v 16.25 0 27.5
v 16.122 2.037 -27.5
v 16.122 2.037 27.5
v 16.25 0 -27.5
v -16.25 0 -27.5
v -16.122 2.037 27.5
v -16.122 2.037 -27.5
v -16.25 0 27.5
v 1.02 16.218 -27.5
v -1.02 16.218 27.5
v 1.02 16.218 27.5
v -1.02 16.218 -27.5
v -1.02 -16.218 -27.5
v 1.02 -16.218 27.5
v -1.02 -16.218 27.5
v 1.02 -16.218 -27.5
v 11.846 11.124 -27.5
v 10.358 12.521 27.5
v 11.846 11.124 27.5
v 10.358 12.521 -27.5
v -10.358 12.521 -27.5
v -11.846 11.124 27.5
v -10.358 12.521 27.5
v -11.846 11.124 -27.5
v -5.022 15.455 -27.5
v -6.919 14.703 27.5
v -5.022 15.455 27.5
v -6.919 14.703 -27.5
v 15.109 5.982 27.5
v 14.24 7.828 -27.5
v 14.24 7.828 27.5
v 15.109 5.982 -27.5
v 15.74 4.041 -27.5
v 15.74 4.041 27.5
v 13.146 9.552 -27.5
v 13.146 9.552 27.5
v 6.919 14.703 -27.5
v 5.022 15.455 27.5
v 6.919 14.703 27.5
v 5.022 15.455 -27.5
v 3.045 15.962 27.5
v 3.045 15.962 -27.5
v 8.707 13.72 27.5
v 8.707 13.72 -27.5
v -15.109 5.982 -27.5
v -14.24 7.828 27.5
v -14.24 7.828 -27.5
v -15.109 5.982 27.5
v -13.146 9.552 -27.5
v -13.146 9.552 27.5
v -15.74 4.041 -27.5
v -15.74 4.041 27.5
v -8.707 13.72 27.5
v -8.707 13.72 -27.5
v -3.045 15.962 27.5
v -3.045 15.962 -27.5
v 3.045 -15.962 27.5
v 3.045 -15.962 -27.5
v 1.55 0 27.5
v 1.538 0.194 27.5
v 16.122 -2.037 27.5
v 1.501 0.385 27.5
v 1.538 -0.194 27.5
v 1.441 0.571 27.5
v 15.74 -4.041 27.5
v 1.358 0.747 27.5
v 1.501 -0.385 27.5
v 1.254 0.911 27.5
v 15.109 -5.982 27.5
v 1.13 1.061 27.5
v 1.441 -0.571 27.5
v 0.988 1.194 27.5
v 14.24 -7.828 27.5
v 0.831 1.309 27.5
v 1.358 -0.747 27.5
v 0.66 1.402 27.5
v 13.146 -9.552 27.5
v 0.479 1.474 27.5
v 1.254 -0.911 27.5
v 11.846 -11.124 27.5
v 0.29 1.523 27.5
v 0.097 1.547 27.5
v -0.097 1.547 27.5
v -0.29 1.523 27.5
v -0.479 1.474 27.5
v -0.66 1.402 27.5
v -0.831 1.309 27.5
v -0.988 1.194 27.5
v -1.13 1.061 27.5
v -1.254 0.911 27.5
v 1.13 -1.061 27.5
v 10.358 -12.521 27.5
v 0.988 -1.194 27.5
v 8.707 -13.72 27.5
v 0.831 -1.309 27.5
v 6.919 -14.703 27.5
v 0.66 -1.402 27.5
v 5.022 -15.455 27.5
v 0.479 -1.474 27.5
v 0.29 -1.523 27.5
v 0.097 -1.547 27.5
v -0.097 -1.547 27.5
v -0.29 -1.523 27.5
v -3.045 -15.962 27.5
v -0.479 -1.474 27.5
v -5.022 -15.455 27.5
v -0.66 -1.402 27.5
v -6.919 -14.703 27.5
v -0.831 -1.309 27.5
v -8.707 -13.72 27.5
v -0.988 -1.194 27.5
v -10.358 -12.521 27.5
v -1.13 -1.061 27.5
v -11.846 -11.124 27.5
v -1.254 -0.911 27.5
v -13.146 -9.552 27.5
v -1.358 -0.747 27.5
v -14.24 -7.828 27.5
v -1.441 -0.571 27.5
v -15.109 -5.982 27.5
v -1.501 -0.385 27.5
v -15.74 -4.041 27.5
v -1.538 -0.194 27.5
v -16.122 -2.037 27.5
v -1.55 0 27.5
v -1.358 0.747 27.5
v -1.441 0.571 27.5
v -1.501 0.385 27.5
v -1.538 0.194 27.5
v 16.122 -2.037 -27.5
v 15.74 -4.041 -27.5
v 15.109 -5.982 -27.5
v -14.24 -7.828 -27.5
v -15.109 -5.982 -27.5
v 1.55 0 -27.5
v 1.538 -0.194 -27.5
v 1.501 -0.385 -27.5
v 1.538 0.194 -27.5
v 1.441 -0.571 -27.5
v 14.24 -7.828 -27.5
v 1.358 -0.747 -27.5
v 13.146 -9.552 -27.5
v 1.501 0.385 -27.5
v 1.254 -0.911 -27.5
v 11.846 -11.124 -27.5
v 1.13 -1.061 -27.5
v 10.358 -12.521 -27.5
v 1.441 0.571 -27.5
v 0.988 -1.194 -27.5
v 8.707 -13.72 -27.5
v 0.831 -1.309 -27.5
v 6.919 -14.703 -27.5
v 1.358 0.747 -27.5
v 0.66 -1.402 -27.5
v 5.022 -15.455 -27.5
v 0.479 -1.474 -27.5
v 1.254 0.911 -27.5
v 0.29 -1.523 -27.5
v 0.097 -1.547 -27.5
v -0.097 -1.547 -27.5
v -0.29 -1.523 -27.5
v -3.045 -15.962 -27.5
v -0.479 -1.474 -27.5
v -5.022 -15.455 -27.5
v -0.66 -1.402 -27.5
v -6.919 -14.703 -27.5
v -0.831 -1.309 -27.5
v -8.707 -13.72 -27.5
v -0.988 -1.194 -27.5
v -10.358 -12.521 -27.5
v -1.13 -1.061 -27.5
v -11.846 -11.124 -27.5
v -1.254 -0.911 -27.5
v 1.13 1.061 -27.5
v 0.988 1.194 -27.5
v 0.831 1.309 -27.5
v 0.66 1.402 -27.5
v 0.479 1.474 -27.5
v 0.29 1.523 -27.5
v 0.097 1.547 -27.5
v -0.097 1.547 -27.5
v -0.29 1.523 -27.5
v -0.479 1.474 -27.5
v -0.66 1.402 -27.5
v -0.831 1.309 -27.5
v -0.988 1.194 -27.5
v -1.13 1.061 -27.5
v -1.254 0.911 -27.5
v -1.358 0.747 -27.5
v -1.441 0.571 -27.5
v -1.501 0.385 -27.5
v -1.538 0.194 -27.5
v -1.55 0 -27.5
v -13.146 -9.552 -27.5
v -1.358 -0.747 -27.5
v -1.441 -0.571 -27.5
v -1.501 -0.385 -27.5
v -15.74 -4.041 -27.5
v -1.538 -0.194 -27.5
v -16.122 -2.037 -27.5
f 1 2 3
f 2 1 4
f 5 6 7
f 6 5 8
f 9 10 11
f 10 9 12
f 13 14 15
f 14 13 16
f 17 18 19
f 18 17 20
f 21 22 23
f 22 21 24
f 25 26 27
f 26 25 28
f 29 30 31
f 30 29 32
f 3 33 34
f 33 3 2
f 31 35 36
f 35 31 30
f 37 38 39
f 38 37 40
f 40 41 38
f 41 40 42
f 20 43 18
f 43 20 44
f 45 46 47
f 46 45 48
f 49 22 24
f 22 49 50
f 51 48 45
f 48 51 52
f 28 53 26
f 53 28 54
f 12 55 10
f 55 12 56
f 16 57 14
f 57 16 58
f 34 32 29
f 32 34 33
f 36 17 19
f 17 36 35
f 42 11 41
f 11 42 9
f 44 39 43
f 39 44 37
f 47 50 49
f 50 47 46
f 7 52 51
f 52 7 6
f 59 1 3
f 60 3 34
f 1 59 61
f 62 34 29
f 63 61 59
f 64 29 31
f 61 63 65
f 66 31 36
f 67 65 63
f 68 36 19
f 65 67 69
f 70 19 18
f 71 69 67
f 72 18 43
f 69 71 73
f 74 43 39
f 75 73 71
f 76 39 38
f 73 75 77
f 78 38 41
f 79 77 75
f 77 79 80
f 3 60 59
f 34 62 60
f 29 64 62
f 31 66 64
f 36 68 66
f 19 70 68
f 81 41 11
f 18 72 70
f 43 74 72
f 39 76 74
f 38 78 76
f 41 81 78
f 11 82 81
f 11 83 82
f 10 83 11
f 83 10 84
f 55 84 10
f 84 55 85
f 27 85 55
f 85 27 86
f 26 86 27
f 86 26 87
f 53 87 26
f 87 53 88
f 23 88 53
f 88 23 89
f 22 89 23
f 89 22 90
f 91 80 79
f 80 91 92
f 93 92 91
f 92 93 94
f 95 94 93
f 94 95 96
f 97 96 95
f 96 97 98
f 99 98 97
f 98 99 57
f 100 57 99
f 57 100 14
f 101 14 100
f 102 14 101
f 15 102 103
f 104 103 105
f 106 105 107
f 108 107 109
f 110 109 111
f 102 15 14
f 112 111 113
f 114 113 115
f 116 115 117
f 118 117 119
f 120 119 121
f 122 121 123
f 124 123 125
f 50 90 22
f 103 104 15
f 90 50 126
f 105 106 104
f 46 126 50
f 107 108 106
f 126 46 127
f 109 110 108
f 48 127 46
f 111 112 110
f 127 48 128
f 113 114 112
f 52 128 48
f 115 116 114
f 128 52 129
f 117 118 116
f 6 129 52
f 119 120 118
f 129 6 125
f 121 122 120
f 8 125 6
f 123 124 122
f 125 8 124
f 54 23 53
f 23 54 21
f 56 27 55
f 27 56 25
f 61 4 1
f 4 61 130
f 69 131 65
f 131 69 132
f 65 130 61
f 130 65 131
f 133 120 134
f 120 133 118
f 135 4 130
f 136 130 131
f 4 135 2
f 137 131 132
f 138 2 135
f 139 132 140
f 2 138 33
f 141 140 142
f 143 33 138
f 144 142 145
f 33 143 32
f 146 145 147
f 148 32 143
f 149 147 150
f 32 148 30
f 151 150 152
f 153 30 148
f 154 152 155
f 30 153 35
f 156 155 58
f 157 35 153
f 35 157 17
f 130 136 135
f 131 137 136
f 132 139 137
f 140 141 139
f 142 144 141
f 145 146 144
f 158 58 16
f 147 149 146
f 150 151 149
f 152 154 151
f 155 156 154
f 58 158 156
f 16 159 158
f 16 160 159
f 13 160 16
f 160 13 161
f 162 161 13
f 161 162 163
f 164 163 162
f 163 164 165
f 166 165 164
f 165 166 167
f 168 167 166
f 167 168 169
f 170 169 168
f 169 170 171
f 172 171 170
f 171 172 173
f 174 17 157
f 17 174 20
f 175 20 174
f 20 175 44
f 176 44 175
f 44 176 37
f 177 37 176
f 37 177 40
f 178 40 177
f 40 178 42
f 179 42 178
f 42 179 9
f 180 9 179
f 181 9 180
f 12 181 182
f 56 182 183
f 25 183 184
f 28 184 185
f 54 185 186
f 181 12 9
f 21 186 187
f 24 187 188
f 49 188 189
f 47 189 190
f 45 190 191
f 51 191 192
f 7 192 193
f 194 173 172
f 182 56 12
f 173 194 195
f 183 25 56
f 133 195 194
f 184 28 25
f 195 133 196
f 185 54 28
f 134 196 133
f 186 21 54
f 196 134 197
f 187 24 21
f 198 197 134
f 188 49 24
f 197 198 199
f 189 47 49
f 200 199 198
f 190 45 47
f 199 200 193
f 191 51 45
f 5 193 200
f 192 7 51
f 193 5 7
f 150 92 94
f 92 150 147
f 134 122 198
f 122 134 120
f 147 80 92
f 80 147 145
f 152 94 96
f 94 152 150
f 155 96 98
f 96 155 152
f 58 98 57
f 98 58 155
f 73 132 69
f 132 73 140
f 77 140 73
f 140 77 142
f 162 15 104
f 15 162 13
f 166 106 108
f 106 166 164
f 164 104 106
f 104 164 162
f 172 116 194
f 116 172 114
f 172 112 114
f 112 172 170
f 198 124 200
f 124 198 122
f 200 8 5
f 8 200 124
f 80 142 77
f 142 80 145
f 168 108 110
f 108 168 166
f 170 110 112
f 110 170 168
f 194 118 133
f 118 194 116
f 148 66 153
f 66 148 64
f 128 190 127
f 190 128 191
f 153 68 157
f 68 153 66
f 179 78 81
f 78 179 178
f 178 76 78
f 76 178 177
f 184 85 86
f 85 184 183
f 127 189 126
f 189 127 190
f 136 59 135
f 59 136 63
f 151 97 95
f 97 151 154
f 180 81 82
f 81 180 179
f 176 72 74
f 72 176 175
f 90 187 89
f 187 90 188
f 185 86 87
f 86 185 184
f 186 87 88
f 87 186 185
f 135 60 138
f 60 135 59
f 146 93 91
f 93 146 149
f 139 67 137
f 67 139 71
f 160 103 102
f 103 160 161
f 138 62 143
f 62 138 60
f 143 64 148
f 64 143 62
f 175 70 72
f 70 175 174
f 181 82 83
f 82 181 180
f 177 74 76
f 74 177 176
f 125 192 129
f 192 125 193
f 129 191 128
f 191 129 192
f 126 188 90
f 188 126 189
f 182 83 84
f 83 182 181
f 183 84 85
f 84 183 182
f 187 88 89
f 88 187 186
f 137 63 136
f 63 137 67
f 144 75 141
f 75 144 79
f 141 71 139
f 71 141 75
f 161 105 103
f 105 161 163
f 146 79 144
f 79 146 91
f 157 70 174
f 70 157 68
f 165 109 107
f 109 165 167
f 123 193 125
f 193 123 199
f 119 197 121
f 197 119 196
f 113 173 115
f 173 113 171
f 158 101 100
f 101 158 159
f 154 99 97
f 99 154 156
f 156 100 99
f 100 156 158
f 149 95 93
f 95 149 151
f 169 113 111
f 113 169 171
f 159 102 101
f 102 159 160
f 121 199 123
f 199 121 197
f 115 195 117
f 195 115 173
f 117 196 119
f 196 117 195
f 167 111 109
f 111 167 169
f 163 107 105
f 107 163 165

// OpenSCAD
$fn = 50;


difference() {
	union() {
		translate(v = [0, 0, -27.5000000000]) {
			cylinder(h = 55, r = 16.2500000000);
		}
	}
	union() {
		translate(v = [0, 0, -100.0000000000]) {
			cylinder(h = 200, r = 1.5500000000);
		}
	}
}
